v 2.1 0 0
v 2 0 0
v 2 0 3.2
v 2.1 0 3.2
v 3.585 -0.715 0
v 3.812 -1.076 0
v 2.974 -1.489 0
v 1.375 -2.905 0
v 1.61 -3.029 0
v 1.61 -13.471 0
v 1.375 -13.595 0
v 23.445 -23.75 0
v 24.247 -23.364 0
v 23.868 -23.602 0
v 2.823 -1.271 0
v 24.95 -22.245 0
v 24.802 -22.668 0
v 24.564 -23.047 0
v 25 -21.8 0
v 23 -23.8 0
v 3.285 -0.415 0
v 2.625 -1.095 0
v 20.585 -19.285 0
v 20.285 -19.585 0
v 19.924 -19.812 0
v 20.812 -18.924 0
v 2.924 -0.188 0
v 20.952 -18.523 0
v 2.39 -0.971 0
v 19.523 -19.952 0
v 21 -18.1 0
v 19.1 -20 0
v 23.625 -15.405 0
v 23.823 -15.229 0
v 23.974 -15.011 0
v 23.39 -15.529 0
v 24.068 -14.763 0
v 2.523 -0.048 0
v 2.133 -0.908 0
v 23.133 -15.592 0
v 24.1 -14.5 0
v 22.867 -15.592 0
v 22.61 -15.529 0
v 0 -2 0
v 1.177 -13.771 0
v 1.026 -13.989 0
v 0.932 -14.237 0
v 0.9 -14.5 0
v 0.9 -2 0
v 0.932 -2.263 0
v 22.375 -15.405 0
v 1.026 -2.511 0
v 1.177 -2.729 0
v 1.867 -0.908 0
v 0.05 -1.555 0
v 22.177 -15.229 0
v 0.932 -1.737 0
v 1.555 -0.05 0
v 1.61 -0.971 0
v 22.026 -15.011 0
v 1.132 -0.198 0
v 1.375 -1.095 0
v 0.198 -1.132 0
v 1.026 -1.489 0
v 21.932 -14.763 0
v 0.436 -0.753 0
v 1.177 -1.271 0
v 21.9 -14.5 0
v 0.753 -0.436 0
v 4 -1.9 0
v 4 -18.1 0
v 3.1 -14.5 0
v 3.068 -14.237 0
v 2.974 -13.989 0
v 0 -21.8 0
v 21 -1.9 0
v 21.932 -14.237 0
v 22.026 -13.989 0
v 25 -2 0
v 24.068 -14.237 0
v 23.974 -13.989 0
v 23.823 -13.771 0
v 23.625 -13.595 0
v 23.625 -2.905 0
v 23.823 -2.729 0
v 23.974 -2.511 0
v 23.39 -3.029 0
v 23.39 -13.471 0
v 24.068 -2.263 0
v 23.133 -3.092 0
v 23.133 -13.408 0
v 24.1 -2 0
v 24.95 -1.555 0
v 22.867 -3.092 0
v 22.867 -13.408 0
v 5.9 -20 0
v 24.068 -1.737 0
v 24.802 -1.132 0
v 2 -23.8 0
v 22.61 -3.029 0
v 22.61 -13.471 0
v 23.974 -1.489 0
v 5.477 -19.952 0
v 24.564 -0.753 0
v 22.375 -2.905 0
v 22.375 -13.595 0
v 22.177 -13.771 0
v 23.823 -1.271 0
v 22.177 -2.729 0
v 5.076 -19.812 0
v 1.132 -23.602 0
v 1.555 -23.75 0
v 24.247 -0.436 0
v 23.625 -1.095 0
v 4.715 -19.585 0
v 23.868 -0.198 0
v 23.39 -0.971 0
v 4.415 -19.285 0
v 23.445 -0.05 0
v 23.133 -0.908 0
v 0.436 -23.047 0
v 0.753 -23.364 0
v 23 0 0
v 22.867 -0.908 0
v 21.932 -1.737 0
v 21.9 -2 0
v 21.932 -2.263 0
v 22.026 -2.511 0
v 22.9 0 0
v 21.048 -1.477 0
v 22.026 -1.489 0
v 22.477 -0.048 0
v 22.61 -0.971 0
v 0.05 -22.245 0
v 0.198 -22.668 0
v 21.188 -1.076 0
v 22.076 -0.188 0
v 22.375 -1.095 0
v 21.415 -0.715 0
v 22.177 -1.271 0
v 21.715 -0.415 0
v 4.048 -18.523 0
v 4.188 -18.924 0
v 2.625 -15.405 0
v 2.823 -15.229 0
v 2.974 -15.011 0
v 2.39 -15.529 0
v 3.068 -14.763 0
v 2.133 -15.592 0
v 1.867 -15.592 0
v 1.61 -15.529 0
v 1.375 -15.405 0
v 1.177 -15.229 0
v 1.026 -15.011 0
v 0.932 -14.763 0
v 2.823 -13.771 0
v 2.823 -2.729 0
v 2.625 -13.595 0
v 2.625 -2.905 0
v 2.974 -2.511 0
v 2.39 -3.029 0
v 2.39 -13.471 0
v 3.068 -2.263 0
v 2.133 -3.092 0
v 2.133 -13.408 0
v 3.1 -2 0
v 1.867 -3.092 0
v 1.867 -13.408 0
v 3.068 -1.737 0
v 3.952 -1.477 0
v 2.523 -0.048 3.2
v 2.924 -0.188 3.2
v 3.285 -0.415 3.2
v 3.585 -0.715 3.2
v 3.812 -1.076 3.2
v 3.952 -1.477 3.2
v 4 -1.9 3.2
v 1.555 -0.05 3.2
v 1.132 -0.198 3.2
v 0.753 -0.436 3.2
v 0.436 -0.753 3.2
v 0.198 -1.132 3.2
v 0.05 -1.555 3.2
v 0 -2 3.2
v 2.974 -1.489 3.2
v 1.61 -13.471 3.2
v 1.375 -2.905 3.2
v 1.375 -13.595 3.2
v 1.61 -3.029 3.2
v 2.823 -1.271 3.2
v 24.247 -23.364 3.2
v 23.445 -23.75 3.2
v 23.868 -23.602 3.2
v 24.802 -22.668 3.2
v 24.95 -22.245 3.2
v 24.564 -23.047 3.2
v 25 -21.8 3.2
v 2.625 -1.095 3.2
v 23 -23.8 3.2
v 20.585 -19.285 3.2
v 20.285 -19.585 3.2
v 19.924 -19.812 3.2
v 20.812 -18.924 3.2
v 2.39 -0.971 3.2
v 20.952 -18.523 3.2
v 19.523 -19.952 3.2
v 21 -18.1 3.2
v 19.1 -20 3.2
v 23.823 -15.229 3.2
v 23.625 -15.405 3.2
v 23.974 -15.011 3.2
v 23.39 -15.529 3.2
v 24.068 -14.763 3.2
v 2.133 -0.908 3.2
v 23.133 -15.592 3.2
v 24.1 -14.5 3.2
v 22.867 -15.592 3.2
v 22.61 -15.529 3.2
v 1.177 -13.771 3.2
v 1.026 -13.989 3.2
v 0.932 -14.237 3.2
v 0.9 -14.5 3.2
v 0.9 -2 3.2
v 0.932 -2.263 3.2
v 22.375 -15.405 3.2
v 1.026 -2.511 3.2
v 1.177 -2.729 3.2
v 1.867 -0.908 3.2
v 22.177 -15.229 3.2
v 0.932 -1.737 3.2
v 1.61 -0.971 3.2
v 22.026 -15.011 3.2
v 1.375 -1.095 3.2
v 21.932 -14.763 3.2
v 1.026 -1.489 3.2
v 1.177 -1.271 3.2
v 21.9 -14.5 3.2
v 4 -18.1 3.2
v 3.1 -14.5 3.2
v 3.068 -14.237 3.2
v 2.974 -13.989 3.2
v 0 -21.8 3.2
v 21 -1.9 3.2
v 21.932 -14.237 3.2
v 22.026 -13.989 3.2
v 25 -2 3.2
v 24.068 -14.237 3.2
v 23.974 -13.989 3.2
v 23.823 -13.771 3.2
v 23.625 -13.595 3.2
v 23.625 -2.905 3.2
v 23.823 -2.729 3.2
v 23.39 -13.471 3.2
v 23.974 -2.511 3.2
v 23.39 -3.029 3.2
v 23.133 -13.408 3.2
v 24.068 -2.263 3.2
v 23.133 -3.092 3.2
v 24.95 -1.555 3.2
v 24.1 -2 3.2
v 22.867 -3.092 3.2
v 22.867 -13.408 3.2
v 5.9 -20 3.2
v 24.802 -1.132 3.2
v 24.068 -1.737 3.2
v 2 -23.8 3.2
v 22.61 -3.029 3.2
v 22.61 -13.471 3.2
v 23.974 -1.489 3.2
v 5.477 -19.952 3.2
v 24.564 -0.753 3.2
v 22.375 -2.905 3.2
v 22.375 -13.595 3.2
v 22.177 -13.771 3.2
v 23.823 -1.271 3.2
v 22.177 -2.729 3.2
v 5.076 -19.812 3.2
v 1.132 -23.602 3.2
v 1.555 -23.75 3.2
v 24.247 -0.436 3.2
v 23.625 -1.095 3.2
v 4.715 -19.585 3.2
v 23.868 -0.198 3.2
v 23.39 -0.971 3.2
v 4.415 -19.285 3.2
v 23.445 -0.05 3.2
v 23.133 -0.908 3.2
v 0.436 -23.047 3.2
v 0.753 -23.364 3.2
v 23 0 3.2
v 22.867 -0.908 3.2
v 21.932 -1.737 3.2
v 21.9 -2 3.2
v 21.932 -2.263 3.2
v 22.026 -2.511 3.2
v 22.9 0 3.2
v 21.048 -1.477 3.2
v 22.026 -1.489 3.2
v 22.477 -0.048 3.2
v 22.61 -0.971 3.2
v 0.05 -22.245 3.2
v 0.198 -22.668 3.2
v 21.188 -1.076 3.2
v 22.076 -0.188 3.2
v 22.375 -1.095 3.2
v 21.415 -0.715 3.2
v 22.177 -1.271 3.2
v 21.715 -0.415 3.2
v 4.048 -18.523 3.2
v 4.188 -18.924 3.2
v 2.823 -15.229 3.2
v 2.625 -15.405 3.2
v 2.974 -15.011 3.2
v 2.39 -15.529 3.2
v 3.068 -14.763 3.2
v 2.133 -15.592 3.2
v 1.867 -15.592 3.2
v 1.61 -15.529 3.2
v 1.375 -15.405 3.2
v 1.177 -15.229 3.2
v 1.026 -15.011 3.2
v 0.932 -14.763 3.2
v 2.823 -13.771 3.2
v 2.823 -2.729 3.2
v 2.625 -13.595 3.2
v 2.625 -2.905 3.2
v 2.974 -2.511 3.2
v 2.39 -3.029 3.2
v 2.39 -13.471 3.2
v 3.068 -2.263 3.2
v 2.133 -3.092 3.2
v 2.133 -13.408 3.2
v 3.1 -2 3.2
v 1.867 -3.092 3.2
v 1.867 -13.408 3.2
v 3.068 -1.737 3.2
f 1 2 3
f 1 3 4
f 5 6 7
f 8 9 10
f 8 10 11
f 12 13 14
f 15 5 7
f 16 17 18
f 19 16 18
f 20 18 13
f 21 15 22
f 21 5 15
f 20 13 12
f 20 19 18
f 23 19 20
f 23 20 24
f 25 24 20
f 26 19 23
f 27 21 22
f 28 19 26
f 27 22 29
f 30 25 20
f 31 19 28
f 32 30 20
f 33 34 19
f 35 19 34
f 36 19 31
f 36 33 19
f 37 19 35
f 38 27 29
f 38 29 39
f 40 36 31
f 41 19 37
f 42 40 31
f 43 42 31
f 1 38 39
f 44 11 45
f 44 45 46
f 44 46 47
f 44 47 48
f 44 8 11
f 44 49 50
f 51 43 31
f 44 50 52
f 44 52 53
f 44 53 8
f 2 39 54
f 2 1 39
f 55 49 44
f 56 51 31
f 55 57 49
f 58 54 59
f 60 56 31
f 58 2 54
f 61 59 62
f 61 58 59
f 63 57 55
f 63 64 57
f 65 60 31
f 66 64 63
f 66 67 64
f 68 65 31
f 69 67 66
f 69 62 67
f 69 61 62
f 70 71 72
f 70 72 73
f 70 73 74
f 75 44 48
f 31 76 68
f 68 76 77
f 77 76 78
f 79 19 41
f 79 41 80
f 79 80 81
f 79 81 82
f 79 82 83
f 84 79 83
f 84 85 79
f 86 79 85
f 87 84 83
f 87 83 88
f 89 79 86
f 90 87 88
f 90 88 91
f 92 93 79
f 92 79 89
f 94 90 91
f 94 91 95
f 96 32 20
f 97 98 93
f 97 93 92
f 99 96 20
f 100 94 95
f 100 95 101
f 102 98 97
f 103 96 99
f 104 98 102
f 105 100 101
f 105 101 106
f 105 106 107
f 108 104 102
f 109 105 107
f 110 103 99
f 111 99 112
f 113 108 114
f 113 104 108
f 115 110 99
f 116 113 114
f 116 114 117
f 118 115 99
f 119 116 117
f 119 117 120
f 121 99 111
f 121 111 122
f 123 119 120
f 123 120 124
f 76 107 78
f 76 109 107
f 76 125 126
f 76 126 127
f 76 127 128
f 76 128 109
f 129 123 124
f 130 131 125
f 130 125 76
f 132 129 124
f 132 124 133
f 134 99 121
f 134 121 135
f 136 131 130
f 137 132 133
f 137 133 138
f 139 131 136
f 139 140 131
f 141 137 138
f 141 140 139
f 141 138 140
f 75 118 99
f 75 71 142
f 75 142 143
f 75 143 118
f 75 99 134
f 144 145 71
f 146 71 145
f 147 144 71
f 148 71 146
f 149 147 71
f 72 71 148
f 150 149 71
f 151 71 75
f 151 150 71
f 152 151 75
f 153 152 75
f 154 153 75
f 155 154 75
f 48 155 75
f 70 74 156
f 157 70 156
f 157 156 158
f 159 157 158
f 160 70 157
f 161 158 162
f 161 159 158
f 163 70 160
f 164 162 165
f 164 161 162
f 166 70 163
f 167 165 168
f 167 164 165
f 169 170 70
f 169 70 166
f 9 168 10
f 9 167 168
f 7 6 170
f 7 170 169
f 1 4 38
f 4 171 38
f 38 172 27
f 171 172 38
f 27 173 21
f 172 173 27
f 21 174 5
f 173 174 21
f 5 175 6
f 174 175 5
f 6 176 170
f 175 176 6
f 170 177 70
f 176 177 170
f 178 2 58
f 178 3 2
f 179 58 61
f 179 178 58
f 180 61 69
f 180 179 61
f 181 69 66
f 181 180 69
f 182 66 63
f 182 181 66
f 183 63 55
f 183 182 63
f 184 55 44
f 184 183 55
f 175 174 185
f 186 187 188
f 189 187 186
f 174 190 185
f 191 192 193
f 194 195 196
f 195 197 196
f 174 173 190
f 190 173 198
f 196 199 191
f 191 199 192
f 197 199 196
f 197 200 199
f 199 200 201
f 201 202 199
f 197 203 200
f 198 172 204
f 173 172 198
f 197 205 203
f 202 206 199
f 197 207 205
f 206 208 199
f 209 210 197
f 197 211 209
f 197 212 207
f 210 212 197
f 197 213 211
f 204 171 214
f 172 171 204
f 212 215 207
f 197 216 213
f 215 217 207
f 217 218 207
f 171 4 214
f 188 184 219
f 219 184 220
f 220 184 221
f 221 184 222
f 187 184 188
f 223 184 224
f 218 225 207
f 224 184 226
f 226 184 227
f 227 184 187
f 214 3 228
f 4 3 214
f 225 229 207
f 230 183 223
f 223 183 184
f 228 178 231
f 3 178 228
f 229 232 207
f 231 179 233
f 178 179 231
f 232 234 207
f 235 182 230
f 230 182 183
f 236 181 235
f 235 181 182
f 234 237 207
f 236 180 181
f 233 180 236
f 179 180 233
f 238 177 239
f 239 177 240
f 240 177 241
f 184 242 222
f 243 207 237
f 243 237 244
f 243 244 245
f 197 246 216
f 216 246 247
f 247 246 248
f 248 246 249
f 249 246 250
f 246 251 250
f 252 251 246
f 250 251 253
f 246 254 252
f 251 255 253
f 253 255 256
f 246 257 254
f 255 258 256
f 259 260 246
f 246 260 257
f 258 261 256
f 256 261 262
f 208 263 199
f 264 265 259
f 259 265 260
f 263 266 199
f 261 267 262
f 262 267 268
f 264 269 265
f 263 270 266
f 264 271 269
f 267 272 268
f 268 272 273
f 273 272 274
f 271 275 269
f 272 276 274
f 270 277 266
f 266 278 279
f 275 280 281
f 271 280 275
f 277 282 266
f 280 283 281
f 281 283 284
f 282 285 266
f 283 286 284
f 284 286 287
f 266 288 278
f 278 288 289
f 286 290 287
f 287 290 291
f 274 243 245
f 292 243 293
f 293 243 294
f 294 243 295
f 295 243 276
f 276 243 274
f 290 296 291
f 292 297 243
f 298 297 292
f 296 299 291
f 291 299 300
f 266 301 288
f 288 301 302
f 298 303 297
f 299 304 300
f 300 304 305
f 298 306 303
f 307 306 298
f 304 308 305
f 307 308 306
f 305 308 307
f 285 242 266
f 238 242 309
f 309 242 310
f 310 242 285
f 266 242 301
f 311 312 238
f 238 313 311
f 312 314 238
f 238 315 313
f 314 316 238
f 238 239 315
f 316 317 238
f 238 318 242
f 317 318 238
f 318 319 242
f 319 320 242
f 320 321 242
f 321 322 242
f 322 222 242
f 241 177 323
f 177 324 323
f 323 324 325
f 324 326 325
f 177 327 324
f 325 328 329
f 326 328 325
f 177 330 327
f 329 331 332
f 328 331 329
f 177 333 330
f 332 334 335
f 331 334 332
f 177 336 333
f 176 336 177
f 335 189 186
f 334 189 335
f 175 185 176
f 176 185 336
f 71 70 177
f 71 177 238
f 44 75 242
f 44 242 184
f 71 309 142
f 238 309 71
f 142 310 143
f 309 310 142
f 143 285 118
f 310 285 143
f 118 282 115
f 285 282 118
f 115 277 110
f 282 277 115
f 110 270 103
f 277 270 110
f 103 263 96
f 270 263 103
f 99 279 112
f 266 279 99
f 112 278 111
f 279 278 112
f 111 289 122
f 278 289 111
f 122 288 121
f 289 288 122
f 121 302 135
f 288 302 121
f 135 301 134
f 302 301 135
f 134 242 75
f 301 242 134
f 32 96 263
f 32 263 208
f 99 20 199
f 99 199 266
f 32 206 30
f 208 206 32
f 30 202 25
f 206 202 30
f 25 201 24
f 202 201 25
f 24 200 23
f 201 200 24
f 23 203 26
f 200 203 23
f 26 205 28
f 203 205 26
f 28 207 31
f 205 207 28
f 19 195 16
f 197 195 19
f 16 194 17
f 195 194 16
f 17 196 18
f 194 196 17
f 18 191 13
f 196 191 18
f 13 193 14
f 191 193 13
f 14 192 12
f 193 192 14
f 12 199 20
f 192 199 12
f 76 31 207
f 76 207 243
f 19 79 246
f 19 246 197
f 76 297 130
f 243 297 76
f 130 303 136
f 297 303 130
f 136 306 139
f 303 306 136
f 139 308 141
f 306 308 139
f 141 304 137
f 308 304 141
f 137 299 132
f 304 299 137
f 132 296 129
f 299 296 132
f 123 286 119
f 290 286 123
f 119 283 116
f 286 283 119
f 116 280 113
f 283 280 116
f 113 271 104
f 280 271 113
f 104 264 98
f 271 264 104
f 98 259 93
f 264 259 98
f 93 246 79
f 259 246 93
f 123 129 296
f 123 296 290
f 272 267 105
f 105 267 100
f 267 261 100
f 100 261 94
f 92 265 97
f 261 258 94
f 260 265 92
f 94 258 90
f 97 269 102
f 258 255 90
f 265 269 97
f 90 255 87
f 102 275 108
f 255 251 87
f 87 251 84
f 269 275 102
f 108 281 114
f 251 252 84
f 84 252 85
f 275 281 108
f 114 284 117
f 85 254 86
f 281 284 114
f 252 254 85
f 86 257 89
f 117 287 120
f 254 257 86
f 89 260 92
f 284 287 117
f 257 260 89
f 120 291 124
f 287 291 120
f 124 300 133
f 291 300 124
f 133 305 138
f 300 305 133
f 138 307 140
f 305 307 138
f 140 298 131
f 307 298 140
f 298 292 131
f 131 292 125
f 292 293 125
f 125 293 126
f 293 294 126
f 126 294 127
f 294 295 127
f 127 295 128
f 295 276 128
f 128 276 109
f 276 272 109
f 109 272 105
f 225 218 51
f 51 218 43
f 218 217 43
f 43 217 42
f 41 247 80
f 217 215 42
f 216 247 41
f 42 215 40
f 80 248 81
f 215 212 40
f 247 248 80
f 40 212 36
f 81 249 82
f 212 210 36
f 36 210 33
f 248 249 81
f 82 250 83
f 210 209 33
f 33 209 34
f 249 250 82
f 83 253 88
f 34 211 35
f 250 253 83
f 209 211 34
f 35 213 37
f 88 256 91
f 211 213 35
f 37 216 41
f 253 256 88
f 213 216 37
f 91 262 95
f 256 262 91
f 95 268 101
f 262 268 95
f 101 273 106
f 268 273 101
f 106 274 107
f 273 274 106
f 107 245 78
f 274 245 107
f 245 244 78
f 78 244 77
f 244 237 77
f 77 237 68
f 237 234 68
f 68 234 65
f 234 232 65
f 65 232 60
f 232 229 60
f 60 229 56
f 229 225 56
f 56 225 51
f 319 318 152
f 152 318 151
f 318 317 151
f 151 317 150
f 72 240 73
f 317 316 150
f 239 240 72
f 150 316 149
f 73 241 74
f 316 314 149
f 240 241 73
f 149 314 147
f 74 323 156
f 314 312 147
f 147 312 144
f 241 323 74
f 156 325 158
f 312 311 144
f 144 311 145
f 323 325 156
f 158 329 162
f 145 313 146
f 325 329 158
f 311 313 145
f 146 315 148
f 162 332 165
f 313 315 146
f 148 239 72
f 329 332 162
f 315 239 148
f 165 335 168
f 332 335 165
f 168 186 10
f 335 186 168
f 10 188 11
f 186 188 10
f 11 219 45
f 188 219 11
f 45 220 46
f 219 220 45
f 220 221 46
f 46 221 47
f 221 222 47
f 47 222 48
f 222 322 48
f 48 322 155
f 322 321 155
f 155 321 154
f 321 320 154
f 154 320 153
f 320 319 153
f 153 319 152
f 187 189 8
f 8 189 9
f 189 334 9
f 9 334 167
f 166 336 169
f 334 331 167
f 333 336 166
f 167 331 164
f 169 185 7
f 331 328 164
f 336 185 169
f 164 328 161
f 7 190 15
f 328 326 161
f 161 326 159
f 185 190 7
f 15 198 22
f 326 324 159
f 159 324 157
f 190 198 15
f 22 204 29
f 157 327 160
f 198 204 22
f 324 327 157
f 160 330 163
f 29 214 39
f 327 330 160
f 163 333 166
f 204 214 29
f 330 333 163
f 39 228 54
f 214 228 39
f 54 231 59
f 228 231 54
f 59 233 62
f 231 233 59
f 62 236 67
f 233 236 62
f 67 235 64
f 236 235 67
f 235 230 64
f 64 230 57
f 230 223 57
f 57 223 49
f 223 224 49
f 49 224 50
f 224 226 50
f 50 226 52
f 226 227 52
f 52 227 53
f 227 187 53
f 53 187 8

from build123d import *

# Parameters (mm, degrees)
PAD_DEPTH    = 3.2
FILLET_R     = 2
FILLET001_R  = 1.9
SKETCH001_R  = 1.1
POCKET_DEPTH = 5


with BuildPart() as part:
    # Sketch → Pad (new body)
    with BuildSketch(Plane.XY):
        Polygon((0, 0), (4, 0), (4, -20), (21, -20), (21, 0), (25, 0), (25, -23.8), (0, -23.8), align=None)
    extrude(amount=PAD_DEPTH)

    # Fillet
    fillet_edges = [part.edges().sort_by_distance(p)[0] for p in [
        (0, -23.8, 1.6),
        (25, -23.8, 1.6),
        (0, 0, 1.6),
        (25, 0, 1.6),
    ]]
    fillet(fillet_edges, radius=FILLET_R)

    # Fillet001
    fillet001_edges = [part.edges().sort_by_distance(p)[0] for p in [
        (4, 0, 1.6),
        (4, -20, 1.6),
        (21, 0, 1.6),
        (21, -20, 1.6),
    ]]
    fillet(fillet001_edges, radius=FILLET001_R)

    # Sketch001 (on Face5 of Fillet001) → Pocket (cut)
    with BuildSketch(Plane.XY.offset(3.2)):
        with Locations((2, -2)):
            Circle(SKETCH001_R)
        with Locations((2, -14.5)):
            Circle(SKETCH001_R)
        with Locations((23, -2)):
            Circle(SKETCH001_R)
        with Locations((23, -14.5)):
            Circle(SKETCH001_R)
    extrude(amount=-POCKET_DEPTH, mode=Mode.SUBTRACT)


solid = part.part
